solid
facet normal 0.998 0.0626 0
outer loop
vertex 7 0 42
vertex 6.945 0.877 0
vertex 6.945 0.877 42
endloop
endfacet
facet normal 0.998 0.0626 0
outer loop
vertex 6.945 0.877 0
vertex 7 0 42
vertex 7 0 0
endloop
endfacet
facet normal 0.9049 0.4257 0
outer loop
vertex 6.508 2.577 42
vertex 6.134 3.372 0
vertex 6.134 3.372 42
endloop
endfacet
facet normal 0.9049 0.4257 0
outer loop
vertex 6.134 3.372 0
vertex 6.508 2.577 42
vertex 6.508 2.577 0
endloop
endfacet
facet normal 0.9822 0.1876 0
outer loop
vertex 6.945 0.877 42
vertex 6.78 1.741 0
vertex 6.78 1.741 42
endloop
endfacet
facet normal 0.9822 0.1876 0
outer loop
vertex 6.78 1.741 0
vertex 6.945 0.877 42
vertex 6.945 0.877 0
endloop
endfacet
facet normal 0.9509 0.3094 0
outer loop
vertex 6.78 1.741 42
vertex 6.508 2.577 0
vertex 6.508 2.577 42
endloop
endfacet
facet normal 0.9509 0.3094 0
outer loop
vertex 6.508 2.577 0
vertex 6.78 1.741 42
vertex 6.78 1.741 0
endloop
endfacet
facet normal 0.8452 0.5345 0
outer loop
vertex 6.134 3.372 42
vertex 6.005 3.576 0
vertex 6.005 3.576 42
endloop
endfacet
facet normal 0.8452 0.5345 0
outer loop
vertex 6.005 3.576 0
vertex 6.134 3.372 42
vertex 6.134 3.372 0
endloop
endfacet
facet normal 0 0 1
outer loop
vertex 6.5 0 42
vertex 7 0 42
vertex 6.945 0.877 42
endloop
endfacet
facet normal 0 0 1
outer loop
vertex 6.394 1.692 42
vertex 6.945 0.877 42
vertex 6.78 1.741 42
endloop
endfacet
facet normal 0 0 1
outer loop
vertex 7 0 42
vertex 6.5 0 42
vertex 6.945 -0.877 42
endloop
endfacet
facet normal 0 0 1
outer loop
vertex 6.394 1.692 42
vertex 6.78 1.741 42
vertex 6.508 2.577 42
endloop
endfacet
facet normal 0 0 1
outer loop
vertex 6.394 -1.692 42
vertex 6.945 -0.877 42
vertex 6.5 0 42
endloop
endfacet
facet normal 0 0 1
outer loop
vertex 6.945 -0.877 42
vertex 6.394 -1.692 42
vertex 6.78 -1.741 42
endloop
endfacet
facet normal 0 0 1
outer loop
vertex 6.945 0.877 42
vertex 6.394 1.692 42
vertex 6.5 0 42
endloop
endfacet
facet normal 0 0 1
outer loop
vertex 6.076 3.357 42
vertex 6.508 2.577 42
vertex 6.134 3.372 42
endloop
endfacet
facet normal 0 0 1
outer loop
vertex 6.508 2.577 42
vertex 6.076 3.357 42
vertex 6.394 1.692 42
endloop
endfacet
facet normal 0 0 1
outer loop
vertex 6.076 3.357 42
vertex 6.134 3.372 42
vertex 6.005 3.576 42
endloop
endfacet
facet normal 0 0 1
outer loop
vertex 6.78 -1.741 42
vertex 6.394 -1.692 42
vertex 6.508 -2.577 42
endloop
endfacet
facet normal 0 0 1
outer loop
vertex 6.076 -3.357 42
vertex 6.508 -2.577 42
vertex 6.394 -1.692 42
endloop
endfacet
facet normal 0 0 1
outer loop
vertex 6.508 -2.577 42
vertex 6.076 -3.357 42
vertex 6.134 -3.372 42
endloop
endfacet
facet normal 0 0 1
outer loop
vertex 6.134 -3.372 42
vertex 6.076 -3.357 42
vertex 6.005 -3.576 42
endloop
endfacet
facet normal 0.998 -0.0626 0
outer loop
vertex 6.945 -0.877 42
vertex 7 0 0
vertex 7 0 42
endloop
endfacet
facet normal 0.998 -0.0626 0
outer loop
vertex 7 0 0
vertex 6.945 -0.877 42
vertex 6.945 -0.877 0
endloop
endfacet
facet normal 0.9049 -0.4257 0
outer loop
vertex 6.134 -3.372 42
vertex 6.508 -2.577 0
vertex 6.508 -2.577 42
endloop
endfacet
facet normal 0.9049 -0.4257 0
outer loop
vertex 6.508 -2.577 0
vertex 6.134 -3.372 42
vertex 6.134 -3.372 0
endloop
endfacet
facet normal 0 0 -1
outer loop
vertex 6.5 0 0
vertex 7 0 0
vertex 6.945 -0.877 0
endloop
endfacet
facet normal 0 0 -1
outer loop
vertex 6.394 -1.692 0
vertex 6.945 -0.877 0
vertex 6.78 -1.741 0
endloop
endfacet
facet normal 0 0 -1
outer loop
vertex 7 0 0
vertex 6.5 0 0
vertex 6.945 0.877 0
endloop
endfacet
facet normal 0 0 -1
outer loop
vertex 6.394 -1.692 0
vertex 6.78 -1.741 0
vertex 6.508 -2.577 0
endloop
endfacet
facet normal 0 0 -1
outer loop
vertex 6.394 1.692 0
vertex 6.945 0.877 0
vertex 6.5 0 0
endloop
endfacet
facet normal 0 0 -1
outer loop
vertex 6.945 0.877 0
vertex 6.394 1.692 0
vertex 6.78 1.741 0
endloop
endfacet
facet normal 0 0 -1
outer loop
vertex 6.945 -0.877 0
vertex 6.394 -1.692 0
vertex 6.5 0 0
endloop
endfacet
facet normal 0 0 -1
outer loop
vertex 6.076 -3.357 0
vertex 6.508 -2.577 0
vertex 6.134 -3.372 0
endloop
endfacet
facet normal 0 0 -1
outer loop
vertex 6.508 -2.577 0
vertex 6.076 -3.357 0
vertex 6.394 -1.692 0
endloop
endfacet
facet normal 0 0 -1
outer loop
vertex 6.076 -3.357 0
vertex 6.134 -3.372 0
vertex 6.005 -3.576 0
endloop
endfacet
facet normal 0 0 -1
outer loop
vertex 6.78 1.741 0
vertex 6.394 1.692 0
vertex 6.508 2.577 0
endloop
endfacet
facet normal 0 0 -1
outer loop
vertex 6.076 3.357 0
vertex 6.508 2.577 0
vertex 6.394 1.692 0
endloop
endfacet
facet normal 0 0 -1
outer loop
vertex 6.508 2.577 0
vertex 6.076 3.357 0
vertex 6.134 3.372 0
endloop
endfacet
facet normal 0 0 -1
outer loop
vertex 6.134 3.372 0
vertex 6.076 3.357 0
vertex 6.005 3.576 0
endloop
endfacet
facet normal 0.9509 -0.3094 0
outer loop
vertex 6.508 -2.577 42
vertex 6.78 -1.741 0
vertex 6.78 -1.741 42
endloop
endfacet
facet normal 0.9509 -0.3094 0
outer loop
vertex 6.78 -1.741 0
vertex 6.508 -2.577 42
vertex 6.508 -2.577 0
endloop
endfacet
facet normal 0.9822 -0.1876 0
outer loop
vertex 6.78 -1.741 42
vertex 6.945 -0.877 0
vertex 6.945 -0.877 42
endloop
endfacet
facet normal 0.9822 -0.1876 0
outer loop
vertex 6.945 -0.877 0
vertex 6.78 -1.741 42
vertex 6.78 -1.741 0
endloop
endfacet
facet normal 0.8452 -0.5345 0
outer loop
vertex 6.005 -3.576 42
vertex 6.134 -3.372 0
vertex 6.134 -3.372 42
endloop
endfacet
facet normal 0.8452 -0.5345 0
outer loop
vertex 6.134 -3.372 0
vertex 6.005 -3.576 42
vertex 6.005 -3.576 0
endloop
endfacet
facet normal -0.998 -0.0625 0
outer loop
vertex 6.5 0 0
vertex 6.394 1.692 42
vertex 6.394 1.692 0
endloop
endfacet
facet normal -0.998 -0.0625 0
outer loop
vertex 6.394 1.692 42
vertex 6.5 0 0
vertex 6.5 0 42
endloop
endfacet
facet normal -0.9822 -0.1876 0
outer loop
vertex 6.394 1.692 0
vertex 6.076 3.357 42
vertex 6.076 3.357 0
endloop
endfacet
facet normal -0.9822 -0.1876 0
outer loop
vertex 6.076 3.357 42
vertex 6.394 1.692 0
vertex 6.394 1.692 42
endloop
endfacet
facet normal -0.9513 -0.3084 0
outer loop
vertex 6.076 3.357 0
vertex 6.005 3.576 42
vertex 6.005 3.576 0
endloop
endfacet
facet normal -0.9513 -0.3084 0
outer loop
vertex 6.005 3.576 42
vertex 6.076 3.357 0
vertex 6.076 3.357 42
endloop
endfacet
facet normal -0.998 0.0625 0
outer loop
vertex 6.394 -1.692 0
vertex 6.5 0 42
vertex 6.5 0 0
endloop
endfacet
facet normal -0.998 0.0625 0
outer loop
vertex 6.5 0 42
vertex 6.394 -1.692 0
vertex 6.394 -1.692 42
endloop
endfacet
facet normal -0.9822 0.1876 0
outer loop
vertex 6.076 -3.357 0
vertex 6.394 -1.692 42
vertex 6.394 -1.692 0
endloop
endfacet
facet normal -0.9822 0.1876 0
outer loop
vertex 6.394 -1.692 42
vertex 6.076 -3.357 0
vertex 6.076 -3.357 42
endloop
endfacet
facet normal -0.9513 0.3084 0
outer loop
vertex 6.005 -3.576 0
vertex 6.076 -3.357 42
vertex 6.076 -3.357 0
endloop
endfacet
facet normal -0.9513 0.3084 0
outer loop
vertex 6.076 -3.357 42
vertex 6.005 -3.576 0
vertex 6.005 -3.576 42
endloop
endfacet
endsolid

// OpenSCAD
$fn = 50;


difference() {
	union() {
		cylinder(h = 42, r = 7.0000000000);
		translate(v = [-10.0000000000, 0, 0]) {
			cylinder(h = 42, r = 7.0000000000);
		}
	}
	union() {
		cylinder(h = 42, r = 3.2500000000);
		cylinder(h = 42, r = 1.8000000000);
		cylinder(h = 42, r = 1.8000000000);
		cylinder(h = 42, r = 1.8000000000);
		translate(v = [-14.5000000000, 0, 0]) {
			hull() {
				translate(v = [-3.7500000000, 0.0000000000, 0]) {
					cylinder(h = 42, r = 10.5000000000);
				}
				translate(v = [3.7500000000, 0.0000000000, 0]) {
					cylinder(h = 42, r = 10.5000000000);
				}
				translate(v = [-3.7500000000, -0.0000000000, 0]) {
					cylinder(h = 42, r = 10.5000000000);
				}
				translate(v = [3.7500000000, -0.0000000000, 0]) {
					cylinder(h = 42, r = 10.5000000000);
				}
			}
		}
		translate(v = [-7.0000000000, 0, 0.0000000000]) {
			cylinder(h = 42, r = 13.5000000000);
		}
	}
}
